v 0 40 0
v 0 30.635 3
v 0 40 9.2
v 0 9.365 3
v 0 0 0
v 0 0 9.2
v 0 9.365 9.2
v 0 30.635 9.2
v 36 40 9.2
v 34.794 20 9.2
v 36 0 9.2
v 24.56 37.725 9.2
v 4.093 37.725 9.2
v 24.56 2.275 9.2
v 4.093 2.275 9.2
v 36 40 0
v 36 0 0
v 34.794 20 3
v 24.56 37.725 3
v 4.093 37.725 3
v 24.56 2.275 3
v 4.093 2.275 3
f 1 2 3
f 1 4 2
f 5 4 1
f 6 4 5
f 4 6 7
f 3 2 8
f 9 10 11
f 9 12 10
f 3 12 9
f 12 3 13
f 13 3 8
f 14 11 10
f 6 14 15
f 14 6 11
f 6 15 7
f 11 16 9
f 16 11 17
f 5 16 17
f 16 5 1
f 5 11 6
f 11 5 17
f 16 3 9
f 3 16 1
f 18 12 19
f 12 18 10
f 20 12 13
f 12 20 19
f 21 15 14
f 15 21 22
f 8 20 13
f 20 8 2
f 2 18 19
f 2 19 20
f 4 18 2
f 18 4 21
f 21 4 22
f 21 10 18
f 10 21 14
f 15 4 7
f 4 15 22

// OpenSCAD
// file: HexPileLib.scad
module LeftPile(totalHeight, singlePileHeight, singlePileDiameter, pileCount){
    pileHeight = (pileCount * singlePileHeight) + .5;
    offset = singlePileDiameter * .15;
    translate([singlePileDiameter/2 - offset, singlePileDiameter/2, totalHeight - pileHeight])
        cylinder(pileHeight, d=singlePileDiameter, $fn=6);
}

module RightPile(totalHeight, singlePileHeight, singlePileDiameter, pileCount){
    translate([0, singlePileDiameter, 0])
        rotate([0, 0, 180])
            LeftPile(totalHeight, singlePileHeight, singlePileDiameter, pileCount);
}

module BottomPile(totalHeight, singlePileHeight, singlePileDiameter, pileCount){
    translate([singlePileDiameter, 0, 0])
        rotate([0, 0, 90])
            LeftPile(totalHeight, singlePileHeight, singlePileDiameter, pileCount);
}

module TopPile(totalHeight, singlePileHeight, singlePileDiameter, pileCount){
        rotate([0, 0, 270])
            LeftPile(totalHeight, singlePileHeight, singlePileDiameter, pileCount);
}
// file: CaledoniaPortsLib.scad
include<HexPileLib.scad>
singlePortHeight = 1.9;
//flat to flat = d = 34.65;
//D = d * 2/rt(3)
d = 34.65 + .8;
D = d * 2/sqrt(3);
singlePortDiameter = D;
//singlePortDiameter =  + .5;

module LeftPort(totalHeight, portCount){
    LeftPile(
        totalHeight,
        singlePortHeight,
        singlePortDiameter,
        portCount);
}

module RightPort(totalHeight, portCount){
    RightPile(
        totalHeight,
        singlePortHeight,
        singlePortDiameter,
        portCount);
}

module BottomPort(totalHeight, portCount){
    BottomPile(
        totalHeight,
        singlePortHeight,
        singlePortDiameter,
        portCount);
}

module TopPort(totalHeight, portCount){
    TopPile(
        totalHeight,
        singlePortHeight,
        singlePortDiameter,
        portCount);
}

function portHeight(portCount) =
    (portCount * singlePortHeight) + .5;

function actualPortWidth() = singlePortDiameter * .85;
// main file
include<CaledoniaPortsLib.scad>
difference() {
    testBoxHeight = portHeight(3) + 3;
    testBoxLength = 36;
    testBoxWidth = 40;
    wallThickness = 3;

    cube([testBoxLength, testBoxWidth, testBoxHeight]);
    translate([0, testBoxWidth/2 - singlePortDiameter/2, 0])
        LeftPort(testBoxHeight, 3);
//    translate([testBoxLength, testBoxWidth/2 - singlePortDiameter/2, 0])
//        RightPort(testBoxHeight, 6);
//    translate([testBoxLength/2 - singlePortDiameter/2, 0, 0])
//        BottomPort(testBoxHeight, 1);
//    translate([testBoxLength/2 - singlePortDiameter/2, testBoxWidth, 0])
//        TopPort(testBoxHeight, 10);
}
